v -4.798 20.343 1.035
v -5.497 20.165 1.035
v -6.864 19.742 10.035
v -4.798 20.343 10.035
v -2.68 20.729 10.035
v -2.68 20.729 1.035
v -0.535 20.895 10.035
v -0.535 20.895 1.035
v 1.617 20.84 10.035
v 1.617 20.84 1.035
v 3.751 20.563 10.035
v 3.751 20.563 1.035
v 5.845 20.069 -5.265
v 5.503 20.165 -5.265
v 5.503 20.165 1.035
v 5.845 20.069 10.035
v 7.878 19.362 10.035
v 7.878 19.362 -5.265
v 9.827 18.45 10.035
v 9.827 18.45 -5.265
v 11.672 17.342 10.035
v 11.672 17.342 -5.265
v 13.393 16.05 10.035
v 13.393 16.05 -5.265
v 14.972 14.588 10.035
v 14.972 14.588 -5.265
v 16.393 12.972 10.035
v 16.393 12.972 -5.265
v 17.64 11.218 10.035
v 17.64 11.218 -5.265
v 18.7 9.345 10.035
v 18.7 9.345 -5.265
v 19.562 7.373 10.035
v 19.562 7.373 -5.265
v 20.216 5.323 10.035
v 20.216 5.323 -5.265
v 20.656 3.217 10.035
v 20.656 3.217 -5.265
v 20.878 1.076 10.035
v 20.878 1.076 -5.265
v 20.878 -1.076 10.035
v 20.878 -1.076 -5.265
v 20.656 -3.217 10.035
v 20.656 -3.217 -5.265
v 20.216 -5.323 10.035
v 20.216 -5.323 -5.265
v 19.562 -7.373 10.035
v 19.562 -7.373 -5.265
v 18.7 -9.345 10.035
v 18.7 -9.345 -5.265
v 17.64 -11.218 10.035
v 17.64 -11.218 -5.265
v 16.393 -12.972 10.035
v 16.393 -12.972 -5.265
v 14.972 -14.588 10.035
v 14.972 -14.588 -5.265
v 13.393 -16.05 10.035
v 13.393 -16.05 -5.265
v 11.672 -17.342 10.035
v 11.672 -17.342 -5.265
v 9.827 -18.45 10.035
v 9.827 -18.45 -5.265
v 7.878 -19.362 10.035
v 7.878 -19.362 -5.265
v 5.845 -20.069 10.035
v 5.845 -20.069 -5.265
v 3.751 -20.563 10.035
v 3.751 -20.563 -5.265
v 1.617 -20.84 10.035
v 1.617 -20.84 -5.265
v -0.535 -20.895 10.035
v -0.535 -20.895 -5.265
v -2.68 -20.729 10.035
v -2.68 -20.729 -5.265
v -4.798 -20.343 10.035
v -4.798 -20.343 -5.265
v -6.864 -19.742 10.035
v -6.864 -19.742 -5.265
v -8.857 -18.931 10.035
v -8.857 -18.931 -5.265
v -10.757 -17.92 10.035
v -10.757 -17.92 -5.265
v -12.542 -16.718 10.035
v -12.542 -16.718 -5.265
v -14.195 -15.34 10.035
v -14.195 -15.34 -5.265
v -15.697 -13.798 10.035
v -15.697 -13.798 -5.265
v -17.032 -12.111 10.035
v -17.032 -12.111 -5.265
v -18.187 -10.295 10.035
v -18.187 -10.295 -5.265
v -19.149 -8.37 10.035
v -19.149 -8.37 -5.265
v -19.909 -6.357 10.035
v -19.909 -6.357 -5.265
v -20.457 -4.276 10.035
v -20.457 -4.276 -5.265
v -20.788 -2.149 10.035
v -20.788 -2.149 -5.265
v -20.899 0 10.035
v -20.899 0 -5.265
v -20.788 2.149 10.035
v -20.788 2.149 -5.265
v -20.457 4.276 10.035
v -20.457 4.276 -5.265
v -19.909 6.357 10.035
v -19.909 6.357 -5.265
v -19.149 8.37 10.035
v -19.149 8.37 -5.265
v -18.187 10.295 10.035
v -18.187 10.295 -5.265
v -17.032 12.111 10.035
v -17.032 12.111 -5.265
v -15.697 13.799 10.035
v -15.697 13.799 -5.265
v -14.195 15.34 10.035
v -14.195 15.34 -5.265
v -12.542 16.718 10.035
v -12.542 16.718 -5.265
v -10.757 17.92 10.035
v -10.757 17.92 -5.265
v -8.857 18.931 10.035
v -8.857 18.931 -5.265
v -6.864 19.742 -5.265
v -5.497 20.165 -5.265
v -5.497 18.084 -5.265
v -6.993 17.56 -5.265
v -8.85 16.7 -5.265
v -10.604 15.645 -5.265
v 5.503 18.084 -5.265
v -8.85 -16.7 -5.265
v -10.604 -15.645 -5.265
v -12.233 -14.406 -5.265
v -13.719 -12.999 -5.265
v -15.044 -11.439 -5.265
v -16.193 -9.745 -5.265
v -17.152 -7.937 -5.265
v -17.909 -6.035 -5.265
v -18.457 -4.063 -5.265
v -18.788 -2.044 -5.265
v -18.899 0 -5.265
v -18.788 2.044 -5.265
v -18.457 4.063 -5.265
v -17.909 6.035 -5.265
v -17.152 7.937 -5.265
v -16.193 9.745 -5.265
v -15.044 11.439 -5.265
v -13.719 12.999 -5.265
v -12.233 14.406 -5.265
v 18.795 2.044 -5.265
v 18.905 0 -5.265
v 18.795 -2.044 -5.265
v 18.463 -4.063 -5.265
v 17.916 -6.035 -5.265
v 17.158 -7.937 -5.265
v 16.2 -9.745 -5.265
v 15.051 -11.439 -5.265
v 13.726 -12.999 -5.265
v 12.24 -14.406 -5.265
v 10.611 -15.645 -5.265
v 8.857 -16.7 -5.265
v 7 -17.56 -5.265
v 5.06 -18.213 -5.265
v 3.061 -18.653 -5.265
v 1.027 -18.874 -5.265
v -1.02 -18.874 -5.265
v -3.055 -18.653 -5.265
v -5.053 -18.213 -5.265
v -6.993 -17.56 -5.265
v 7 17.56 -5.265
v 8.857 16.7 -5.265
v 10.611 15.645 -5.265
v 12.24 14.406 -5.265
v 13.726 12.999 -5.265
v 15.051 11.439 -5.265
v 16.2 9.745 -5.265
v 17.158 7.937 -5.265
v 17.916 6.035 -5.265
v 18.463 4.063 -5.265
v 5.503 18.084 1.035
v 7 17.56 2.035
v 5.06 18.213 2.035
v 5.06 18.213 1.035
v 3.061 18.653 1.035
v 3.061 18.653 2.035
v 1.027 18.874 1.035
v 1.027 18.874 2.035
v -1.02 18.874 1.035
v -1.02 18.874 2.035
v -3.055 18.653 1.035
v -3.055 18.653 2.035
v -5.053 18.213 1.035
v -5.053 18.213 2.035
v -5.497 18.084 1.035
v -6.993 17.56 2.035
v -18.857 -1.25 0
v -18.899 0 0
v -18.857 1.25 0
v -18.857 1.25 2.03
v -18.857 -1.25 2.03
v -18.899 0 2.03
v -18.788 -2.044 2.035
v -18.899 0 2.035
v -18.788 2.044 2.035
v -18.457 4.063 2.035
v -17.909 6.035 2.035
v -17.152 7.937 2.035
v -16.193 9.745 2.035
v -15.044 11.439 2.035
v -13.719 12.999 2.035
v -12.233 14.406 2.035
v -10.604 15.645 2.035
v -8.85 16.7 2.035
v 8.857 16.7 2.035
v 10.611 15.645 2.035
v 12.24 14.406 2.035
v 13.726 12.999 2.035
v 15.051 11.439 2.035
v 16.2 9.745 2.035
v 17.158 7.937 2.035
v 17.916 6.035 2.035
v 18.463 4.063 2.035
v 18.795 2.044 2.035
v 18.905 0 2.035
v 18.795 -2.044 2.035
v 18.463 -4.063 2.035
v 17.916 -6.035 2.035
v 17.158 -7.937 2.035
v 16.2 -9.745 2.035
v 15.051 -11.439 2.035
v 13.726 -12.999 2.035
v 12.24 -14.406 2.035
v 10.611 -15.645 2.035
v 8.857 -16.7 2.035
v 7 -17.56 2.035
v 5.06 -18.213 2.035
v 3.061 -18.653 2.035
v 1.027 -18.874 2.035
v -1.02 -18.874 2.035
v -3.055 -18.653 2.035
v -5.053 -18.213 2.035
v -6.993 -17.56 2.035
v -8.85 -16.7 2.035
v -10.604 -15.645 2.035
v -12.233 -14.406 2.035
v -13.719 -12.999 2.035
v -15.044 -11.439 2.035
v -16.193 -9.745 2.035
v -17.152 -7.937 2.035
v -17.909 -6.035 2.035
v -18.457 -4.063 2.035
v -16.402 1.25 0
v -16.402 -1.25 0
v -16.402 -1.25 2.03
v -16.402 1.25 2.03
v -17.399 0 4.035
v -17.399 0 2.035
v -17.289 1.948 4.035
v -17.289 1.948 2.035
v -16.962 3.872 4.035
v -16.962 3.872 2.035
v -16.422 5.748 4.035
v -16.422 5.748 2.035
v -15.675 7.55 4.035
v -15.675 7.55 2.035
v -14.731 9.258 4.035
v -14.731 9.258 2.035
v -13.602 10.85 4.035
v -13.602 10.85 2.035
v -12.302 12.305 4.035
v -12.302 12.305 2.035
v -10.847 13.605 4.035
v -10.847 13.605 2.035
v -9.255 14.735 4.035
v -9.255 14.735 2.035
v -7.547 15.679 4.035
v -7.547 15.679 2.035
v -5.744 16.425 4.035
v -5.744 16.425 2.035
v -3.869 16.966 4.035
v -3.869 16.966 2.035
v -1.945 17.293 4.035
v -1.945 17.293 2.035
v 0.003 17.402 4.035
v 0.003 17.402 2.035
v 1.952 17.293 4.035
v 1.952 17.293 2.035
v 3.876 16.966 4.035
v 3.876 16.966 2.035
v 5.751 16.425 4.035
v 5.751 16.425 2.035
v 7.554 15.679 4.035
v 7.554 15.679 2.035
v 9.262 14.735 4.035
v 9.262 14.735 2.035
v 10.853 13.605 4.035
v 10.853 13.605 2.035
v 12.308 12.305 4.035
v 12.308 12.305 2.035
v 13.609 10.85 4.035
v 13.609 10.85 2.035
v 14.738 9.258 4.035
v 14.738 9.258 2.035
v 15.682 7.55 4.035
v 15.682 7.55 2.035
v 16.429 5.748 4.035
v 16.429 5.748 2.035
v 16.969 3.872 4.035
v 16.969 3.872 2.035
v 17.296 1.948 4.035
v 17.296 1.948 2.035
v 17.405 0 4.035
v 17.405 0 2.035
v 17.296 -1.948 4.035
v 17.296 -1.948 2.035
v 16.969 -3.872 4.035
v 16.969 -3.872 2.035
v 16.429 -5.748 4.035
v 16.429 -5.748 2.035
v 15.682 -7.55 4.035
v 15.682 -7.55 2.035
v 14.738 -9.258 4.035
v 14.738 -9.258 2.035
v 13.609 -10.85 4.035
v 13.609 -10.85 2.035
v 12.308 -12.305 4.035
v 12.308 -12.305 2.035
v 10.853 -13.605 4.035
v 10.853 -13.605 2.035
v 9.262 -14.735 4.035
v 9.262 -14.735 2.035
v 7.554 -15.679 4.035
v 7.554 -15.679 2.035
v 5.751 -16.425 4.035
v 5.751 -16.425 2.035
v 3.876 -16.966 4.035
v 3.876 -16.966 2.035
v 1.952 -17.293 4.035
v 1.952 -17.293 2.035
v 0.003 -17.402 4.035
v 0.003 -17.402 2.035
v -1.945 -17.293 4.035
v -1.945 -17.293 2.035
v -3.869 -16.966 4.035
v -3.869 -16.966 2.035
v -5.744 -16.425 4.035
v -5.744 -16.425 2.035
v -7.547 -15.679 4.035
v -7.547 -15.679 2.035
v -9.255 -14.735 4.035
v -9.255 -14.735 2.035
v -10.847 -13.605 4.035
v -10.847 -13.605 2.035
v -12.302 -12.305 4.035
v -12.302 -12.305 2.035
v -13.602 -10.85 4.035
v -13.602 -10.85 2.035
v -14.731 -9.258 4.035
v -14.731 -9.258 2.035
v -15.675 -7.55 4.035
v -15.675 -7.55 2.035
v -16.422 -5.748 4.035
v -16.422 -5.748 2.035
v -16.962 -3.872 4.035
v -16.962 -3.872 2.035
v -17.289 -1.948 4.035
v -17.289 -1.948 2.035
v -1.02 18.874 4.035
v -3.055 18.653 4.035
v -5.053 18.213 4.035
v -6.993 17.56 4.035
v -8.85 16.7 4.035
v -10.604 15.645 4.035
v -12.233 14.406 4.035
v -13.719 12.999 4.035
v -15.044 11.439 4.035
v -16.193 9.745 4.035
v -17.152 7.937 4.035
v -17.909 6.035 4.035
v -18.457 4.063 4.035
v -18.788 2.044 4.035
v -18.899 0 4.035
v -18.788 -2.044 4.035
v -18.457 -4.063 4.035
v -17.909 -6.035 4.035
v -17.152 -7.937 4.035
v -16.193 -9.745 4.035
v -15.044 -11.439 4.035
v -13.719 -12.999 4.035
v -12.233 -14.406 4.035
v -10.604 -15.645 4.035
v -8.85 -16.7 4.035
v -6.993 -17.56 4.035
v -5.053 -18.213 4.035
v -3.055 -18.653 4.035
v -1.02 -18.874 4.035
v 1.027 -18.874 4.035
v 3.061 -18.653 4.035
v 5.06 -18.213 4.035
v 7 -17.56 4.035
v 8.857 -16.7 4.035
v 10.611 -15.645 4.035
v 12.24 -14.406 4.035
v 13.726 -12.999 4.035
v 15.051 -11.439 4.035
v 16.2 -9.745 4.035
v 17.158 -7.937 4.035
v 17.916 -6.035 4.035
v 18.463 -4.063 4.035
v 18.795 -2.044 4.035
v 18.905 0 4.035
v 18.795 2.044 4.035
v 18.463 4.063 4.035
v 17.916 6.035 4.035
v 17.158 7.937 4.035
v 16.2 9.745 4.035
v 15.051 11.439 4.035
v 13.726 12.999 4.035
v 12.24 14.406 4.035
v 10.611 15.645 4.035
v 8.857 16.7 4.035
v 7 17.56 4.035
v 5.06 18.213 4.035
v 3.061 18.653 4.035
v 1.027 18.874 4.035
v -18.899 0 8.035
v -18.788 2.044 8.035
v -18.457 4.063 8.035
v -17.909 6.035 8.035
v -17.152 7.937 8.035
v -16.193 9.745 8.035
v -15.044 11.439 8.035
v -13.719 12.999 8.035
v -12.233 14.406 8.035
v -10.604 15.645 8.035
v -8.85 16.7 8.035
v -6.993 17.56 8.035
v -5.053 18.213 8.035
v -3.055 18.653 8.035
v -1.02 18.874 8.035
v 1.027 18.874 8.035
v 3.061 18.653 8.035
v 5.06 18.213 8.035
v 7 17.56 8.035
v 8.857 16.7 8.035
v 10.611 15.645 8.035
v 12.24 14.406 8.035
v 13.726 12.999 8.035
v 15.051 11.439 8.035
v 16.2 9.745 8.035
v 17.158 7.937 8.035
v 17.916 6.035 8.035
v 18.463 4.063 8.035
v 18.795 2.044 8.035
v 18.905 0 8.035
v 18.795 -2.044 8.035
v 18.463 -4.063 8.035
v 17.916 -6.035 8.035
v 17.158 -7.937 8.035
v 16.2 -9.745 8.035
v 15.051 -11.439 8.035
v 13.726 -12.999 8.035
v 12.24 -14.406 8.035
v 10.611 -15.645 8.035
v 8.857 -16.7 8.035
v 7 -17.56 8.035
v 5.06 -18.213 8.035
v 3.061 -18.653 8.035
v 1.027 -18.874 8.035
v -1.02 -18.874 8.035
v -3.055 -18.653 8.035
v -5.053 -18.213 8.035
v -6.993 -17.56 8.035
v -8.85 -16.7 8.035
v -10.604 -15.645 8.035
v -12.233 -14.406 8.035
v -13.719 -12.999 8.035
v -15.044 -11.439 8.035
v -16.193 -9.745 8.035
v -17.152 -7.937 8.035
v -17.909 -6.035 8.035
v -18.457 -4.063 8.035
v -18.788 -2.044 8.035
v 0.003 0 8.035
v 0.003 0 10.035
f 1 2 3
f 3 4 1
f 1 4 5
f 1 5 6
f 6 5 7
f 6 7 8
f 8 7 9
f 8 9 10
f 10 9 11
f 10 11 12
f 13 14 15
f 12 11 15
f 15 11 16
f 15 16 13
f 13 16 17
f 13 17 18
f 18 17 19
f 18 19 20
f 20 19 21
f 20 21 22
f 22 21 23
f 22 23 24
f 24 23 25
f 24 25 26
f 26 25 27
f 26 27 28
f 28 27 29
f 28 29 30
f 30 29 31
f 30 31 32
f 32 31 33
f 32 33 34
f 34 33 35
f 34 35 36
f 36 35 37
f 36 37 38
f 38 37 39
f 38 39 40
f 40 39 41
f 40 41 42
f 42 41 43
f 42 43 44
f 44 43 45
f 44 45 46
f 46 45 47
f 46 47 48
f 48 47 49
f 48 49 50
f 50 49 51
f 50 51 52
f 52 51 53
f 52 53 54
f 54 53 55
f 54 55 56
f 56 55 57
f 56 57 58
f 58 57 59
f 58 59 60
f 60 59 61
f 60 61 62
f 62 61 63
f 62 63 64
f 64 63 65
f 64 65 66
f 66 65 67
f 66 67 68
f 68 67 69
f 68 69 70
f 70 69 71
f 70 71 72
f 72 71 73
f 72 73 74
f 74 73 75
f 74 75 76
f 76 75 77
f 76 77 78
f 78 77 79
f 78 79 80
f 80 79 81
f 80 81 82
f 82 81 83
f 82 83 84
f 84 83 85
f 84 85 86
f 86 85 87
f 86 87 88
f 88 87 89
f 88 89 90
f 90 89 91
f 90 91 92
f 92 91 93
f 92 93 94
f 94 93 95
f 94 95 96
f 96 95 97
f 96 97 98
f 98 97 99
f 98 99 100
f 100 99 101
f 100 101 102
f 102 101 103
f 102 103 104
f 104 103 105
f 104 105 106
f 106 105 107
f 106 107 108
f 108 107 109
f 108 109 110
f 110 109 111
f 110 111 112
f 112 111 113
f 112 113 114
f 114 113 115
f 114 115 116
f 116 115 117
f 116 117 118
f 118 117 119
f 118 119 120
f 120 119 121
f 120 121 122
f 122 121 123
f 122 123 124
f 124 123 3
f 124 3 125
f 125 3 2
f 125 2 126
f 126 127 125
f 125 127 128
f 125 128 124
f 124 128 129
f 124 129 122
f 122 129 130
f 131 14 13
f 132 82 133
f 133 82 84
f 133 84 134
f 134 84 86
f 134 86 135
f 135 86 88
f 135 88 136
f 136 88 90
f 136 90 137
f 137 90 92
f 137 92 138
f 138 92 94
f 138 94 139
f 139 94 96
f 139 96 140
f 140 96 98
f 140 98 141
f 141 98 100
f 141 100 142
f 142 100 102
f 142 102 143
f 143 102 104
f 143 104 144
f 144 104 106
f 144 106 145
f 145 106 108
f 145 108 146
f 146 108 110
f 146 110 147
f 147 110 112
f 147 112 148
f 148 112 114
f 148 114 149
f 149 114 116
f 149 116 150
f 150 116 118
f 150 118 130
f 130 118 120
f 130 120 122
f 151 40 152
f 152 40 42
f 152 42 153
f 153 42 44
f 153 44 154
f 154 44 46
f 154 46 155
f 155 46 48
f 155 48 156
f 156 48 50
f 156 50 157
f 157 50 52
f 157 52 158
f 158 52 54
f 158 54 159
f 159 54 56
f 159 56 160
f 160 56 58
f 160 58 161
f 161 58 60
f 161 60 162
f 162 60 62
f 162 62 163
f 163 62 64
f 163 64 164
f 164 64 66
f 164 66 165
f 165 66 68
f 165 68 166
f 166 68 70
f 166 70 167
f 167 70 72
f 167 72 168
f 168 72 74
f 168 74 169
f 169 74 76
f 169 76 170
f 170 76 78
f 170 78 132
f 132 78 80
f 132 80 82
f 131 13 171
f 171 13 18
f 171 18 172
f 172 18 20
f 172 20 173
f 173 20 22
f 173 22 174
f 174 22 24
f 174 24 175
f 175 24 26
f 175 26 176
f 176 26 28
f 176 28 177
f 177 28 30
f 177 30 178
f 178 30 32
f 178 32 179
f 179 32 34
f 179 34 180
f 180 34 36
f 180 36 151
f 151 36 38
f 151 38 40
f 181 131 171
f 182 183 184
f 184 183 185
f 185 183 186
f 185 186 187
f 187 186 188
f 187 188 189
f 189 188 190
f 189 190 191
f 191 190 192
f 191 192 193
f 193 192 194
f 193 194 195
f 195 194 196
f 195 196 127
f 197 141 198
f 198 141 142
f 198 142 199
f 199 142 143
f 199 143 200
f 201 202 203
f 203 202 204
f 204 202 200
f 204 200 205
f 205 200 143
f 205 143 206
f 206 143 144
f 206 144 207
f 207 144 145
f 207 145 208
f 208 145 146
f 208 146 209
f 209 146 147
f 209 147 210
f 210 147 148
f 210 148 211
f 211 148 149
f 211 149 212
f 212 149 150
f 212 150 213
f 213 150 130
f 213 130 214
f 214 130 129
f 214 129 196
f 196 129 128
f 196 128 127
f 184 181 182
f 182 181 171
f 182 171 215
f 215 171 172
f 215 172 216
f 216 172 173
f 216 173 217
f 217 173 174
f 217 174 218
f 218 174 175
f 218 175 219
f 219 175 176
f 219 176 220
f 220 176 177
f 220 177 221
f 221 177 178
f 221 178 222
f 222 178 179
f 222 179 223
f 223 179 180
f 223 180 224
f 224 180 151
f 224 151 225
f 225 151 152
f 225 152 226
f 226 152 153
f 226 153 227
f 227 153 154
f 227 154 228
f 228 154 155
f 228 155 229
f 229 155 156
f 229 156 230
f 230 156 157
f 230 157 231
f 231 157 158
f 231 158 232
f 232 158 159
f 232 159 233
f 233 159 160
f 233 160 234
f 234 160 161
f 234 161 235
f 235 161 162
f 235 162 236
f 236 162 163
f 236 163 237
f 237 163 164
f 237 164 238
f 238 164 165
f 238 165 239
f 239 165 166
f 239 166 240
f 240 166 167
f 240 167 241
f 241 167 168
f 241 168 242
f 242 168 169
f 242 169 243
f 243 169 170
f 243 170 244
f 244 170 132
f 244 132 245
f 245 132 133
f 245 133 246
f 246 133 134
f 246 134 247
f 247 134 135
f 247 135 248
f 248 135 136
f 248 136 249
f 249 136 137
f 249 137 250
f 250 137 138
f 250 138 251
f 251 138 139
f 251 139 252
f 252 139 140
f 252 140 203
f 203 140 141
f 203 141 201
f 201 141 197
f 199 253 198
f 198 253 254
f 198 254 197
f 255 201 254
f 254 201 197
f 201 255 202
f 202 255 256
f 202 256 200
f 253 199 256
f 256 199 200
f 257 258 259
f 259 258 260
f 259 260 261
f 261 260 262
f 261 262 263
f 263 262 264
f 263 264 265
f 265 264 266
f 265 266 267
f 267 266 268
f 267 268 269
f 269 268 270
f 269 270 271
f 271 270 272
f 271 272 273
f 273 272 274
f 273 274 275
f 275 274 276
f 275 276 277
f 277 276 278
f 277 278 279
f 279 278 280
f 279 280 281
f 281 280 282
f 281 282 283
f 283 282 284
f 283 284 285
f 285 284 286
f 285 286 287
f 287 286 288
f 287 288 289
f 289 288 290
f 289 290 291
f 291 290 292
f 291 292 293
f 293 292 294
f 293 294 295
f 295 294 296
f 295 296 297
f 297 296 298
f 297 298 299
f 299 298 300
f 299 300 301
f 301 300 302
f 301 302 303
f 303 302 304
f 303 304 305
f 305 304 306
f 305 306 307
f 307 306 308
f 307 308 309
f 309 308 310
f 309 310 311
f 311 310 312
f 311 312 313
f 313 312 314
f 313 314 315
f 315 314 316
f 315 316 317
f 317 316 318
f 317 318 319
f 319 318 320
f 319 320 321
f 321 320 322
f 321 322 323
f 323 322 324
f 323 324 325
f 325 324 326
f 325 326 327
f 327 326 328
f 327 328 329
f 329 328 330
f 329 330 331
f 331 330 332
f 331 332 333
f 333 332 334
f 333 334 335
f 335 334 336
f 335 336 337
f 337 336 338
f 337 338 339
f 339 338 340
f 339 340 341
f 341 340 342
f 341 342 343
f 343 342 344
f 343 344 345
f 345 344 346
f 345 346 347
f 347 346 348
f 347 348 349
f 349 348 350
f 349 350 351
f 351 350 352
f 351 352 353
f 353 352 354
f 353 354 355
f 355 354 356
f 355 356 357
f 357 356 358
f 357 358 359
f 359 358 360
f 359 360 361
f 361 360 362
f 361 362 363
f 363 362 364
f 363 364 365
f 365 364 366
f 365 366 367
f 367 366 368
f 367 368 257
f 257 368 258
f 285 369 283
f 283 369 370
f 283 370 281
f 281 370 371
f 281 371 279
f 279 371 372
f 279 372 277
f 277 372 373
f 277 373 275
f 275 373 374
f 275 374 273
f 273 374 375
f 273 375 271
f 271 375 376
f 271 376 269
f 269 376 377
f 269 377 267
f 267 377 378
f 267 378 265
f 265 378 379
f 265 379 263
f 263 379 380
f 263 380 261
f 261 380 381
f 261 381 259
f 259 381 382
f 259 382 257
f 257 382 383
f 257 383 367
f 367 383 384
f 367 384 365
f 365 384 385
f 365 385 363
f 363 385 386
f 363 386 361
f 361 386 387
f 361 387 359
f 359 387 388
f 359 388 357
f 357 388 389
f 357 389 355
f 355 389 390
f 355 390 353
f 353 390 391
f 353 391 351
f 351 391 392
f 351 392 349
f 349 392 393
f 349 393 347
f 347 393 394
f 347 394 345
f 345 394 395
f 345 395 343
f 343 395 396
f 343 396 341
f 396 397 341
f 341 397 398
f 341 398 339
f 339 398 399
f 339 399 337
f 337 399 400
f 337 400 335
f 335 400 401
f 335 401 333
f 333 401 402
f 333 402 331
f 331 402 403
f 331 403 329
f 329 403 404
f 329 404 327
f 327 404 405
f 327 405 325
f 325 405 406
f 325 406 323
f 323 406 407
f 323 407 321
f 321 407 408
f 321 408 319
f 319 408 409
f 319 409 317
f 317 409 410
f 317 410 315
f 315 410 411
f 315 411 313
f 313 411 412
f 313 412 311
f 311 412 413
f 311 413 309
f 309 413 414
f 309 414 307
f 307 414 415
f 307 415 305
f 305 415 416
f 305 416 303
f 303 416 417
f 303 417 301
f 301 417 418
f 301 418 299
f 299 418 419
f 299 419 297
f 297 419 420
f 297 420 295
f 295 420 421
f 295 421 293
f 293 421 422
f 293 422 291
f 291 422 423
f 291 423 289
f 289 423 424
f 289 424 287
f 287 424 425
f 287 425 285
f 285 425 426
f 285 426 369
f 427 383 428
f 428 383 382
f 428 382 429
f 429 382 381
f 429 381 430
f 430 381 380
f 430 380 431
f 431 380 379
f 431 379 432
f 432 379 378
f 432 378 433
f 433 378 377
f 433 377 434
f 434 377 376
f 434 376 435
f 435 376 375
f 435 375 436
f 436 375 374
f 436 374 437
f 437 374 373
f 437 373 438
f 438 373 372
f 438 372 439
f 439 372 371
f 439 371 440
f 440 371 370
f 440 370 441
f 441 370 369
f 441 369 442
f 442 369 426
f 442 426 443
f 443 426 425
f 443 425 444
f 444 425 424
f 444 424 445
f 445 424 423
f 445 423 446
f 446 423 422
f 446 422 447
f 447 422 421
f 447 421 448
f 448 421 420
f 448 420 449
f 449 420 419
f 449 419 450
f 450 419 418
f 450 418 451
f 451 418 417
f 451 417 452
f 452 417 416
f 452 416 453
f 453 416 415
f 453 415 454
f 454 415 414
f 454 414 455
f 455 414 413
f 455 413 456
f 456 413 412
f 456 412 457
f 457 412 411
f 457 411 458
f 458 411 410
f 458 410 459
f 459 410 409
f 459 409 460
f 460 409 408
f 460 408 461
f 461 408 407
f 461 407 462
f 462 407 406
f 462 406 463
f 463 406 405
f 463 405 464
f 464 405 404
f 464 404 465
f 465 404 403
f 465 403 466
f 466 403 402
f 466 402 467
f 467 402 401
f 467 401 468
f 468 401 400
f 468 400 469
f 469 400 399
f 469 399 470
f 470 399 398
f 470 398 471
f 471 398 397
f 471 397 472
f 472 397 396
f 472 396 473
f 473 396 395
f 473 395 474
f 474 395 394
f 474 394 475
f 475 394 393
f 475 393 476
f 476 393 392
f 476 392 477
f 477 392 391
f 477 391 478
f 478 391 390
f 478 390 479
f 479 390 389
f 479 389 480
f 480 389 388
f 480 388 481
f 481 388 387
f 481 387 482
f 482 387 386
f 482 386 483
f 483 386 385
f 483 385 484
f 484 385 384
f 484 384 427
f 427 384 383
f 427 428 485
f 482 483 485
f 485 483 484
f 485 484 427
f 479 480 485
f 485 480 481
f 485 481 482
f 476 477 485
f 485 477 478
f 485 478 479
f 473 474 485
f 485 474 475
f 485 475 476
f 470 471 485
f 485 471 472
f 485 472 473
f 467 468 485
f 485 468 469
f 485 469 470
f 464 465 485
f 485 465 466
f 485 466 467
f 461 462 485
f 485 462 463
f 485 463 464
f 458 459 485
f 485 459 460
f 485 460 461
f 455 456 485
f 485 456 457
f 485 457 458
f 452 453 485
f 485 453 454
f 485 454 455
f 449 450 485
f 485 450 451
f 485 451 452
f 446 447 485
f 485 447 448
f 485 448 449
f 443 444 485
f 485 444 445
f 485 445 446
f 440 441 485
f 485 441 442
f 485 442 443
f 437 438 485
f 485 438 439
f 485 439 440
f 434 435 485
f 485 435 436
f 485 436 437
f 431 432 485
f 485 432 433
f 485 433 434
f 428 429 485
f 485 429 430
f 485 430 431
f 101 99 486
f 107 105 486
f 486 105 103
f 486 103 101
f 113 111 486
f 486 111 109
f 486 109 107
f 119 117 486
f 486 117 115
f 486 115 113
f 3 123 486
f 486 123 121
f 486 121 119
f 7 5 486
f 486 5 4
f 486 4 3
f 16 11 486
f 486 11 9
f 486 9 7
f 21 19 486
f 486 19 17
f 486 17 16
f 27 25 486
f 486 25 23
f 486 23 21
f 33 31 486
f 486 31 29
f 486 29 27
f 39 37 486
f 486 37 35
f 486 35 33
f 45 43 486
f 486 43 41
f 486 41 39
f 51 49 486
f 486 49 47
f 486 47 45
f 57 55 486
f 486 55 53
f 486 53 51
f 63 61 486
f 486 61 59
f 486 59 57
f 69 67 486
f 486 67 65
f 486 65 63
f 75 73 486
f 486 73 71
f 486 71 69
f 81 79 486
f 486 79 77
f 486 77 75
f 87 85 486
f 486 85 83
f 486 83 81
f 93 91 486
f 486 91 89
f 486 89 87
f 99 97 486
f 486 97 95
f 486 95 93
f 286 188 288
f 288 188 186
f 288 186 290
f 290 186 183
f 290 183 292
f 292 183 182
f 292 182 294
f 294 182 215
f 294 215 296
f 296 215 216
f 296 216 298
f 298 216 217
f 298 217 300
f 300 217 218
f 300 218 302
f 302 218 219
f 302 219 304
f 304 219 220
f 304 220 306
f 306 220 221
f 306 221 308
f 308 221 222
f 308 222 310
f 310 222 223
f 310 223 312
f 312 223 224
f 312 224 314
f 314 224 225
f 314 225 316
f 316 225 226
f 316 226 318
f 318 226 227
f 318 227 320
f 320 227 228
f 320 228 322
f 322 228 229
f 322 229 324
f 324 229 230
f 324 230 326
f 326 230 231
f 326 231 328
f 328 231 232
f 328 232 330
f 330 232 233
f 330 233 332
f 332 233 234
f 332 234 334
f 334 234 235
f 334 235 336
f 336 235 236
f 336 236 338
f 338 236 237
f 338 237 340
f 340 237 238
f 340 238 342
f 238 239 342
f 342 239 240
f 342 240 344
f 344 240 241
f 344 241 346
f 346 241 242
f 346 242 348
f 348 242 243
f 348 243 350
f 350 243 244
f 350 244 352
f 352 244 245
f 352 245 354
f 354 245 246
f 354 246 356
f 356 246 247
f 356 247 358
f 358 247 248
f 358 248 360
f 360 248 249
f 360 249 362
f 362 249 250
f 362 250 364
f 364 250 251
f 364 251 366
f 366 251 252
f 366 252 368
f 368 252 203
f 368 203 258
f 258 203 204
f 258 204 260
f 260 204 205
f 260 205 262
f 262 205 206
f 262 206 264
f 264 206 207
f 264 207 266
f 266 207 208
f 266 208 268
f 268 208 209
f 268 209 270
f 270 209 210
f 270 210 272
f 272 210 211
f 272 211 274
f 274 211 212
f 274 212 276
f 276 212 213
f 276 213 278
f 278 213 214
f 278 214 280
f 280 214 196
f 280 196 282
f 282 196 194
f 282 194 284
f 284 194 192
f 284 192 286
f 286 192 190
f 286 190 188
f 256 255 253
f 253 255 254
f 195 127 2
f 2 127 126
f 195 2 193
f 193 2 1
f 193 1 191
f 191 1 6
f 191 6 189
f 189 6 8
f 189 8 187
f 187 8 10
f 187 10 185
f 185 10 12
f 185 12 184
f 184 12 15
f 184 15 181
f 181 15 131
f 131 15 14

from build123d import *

# Parameters (mm, degrees)
SKIZZE3_W                       = 2.03
SKIZZE3_H                       = 2.5
AUFSATZ_LINEAR_AUSTRAGEN1_DEPTH = 18.902
SKIZZE3_3_W                     = 2.03
SKIZZE3_3_H                     = 2.5
SCHNITT_LINEAR_AUSTRAGEN3_DEPTH = 16.402
SKIZZE2_W                       = 11
SKIZZE2_H                       = 6.3
SCHNITT_LINEAR_AUSTRAGEN4_DEPTH = 23


with BuildPart() as part:
    # Skizze1 → Rotation2 (revolve)
    with BuildSketch(Plane(origin=(0, 0, 0), x_dir=(1, 0, 0), z_dir=(0, 1, 0))):
        Polygon((0.00340061, -8.034840547), (0.00340061, -10.034840547), (20.90540061, -10.034840547), (20.90540061, 5.265159453), (18.90540061, 5.265159453), (18.90540061, -2.034840547), (17.40540061, -2.034840547), (17.40540061, -4.034840547), (18.90540061, -4.034840547), (18.90540061, -8.034840547), align=None)
    revolve(axis=Axis((0.00340061, 0, 8.034840547), (0, 0, 1)))

    # Skizze3 → Aufsatz-Linear austragen1 (add)
    with BuildSketch(Plane(origin=(0, 0, 0), x_dir=(0, 0, -1), z_dir=(1, 0, 0))):
        with Locations((-1.015, 0)):
            Rectangle(SKIZZE3_W, SKIZZE3_H)
    extrude(amount=-AUFSATZ_LINEAR_AUSTRAGEN1_DEPTH)

    # Skizze3<3> → Schnitt-Linear austragen3 (cut)
    with BuildSketch(Plane(origin=(0, 0, 0), x_dir=(0, 0, -1), z_dir=(1, 0, 0))):
        with Locations((-1.015, 0)):
            Rectangle(SKIZZE3_3_W, SKIZZE3_3_H)
    extrude(amount=-SCHNITT_LINEAR_AUSTRAGEN3_DEPTH, mode=Mode.SUBTRACT)

    # Skizze2 → Schnitt-Linear austragen4 (cut)
    with BuildSketch(Plane(origin=(0, 0, 0), x_dir=(1, 0, 0), z_dir=(0, 1, 0))):
        with Locations((0.00340061, 2.115159453)):
            Rectangle(SKIZZE2_W, SKIZZE2_H)
    extrude(amount=SCHNITT_LINEAR_AUSTRAGEN4_DEPTH, mode=Mode.SUBTRACT)


solid = part.part
